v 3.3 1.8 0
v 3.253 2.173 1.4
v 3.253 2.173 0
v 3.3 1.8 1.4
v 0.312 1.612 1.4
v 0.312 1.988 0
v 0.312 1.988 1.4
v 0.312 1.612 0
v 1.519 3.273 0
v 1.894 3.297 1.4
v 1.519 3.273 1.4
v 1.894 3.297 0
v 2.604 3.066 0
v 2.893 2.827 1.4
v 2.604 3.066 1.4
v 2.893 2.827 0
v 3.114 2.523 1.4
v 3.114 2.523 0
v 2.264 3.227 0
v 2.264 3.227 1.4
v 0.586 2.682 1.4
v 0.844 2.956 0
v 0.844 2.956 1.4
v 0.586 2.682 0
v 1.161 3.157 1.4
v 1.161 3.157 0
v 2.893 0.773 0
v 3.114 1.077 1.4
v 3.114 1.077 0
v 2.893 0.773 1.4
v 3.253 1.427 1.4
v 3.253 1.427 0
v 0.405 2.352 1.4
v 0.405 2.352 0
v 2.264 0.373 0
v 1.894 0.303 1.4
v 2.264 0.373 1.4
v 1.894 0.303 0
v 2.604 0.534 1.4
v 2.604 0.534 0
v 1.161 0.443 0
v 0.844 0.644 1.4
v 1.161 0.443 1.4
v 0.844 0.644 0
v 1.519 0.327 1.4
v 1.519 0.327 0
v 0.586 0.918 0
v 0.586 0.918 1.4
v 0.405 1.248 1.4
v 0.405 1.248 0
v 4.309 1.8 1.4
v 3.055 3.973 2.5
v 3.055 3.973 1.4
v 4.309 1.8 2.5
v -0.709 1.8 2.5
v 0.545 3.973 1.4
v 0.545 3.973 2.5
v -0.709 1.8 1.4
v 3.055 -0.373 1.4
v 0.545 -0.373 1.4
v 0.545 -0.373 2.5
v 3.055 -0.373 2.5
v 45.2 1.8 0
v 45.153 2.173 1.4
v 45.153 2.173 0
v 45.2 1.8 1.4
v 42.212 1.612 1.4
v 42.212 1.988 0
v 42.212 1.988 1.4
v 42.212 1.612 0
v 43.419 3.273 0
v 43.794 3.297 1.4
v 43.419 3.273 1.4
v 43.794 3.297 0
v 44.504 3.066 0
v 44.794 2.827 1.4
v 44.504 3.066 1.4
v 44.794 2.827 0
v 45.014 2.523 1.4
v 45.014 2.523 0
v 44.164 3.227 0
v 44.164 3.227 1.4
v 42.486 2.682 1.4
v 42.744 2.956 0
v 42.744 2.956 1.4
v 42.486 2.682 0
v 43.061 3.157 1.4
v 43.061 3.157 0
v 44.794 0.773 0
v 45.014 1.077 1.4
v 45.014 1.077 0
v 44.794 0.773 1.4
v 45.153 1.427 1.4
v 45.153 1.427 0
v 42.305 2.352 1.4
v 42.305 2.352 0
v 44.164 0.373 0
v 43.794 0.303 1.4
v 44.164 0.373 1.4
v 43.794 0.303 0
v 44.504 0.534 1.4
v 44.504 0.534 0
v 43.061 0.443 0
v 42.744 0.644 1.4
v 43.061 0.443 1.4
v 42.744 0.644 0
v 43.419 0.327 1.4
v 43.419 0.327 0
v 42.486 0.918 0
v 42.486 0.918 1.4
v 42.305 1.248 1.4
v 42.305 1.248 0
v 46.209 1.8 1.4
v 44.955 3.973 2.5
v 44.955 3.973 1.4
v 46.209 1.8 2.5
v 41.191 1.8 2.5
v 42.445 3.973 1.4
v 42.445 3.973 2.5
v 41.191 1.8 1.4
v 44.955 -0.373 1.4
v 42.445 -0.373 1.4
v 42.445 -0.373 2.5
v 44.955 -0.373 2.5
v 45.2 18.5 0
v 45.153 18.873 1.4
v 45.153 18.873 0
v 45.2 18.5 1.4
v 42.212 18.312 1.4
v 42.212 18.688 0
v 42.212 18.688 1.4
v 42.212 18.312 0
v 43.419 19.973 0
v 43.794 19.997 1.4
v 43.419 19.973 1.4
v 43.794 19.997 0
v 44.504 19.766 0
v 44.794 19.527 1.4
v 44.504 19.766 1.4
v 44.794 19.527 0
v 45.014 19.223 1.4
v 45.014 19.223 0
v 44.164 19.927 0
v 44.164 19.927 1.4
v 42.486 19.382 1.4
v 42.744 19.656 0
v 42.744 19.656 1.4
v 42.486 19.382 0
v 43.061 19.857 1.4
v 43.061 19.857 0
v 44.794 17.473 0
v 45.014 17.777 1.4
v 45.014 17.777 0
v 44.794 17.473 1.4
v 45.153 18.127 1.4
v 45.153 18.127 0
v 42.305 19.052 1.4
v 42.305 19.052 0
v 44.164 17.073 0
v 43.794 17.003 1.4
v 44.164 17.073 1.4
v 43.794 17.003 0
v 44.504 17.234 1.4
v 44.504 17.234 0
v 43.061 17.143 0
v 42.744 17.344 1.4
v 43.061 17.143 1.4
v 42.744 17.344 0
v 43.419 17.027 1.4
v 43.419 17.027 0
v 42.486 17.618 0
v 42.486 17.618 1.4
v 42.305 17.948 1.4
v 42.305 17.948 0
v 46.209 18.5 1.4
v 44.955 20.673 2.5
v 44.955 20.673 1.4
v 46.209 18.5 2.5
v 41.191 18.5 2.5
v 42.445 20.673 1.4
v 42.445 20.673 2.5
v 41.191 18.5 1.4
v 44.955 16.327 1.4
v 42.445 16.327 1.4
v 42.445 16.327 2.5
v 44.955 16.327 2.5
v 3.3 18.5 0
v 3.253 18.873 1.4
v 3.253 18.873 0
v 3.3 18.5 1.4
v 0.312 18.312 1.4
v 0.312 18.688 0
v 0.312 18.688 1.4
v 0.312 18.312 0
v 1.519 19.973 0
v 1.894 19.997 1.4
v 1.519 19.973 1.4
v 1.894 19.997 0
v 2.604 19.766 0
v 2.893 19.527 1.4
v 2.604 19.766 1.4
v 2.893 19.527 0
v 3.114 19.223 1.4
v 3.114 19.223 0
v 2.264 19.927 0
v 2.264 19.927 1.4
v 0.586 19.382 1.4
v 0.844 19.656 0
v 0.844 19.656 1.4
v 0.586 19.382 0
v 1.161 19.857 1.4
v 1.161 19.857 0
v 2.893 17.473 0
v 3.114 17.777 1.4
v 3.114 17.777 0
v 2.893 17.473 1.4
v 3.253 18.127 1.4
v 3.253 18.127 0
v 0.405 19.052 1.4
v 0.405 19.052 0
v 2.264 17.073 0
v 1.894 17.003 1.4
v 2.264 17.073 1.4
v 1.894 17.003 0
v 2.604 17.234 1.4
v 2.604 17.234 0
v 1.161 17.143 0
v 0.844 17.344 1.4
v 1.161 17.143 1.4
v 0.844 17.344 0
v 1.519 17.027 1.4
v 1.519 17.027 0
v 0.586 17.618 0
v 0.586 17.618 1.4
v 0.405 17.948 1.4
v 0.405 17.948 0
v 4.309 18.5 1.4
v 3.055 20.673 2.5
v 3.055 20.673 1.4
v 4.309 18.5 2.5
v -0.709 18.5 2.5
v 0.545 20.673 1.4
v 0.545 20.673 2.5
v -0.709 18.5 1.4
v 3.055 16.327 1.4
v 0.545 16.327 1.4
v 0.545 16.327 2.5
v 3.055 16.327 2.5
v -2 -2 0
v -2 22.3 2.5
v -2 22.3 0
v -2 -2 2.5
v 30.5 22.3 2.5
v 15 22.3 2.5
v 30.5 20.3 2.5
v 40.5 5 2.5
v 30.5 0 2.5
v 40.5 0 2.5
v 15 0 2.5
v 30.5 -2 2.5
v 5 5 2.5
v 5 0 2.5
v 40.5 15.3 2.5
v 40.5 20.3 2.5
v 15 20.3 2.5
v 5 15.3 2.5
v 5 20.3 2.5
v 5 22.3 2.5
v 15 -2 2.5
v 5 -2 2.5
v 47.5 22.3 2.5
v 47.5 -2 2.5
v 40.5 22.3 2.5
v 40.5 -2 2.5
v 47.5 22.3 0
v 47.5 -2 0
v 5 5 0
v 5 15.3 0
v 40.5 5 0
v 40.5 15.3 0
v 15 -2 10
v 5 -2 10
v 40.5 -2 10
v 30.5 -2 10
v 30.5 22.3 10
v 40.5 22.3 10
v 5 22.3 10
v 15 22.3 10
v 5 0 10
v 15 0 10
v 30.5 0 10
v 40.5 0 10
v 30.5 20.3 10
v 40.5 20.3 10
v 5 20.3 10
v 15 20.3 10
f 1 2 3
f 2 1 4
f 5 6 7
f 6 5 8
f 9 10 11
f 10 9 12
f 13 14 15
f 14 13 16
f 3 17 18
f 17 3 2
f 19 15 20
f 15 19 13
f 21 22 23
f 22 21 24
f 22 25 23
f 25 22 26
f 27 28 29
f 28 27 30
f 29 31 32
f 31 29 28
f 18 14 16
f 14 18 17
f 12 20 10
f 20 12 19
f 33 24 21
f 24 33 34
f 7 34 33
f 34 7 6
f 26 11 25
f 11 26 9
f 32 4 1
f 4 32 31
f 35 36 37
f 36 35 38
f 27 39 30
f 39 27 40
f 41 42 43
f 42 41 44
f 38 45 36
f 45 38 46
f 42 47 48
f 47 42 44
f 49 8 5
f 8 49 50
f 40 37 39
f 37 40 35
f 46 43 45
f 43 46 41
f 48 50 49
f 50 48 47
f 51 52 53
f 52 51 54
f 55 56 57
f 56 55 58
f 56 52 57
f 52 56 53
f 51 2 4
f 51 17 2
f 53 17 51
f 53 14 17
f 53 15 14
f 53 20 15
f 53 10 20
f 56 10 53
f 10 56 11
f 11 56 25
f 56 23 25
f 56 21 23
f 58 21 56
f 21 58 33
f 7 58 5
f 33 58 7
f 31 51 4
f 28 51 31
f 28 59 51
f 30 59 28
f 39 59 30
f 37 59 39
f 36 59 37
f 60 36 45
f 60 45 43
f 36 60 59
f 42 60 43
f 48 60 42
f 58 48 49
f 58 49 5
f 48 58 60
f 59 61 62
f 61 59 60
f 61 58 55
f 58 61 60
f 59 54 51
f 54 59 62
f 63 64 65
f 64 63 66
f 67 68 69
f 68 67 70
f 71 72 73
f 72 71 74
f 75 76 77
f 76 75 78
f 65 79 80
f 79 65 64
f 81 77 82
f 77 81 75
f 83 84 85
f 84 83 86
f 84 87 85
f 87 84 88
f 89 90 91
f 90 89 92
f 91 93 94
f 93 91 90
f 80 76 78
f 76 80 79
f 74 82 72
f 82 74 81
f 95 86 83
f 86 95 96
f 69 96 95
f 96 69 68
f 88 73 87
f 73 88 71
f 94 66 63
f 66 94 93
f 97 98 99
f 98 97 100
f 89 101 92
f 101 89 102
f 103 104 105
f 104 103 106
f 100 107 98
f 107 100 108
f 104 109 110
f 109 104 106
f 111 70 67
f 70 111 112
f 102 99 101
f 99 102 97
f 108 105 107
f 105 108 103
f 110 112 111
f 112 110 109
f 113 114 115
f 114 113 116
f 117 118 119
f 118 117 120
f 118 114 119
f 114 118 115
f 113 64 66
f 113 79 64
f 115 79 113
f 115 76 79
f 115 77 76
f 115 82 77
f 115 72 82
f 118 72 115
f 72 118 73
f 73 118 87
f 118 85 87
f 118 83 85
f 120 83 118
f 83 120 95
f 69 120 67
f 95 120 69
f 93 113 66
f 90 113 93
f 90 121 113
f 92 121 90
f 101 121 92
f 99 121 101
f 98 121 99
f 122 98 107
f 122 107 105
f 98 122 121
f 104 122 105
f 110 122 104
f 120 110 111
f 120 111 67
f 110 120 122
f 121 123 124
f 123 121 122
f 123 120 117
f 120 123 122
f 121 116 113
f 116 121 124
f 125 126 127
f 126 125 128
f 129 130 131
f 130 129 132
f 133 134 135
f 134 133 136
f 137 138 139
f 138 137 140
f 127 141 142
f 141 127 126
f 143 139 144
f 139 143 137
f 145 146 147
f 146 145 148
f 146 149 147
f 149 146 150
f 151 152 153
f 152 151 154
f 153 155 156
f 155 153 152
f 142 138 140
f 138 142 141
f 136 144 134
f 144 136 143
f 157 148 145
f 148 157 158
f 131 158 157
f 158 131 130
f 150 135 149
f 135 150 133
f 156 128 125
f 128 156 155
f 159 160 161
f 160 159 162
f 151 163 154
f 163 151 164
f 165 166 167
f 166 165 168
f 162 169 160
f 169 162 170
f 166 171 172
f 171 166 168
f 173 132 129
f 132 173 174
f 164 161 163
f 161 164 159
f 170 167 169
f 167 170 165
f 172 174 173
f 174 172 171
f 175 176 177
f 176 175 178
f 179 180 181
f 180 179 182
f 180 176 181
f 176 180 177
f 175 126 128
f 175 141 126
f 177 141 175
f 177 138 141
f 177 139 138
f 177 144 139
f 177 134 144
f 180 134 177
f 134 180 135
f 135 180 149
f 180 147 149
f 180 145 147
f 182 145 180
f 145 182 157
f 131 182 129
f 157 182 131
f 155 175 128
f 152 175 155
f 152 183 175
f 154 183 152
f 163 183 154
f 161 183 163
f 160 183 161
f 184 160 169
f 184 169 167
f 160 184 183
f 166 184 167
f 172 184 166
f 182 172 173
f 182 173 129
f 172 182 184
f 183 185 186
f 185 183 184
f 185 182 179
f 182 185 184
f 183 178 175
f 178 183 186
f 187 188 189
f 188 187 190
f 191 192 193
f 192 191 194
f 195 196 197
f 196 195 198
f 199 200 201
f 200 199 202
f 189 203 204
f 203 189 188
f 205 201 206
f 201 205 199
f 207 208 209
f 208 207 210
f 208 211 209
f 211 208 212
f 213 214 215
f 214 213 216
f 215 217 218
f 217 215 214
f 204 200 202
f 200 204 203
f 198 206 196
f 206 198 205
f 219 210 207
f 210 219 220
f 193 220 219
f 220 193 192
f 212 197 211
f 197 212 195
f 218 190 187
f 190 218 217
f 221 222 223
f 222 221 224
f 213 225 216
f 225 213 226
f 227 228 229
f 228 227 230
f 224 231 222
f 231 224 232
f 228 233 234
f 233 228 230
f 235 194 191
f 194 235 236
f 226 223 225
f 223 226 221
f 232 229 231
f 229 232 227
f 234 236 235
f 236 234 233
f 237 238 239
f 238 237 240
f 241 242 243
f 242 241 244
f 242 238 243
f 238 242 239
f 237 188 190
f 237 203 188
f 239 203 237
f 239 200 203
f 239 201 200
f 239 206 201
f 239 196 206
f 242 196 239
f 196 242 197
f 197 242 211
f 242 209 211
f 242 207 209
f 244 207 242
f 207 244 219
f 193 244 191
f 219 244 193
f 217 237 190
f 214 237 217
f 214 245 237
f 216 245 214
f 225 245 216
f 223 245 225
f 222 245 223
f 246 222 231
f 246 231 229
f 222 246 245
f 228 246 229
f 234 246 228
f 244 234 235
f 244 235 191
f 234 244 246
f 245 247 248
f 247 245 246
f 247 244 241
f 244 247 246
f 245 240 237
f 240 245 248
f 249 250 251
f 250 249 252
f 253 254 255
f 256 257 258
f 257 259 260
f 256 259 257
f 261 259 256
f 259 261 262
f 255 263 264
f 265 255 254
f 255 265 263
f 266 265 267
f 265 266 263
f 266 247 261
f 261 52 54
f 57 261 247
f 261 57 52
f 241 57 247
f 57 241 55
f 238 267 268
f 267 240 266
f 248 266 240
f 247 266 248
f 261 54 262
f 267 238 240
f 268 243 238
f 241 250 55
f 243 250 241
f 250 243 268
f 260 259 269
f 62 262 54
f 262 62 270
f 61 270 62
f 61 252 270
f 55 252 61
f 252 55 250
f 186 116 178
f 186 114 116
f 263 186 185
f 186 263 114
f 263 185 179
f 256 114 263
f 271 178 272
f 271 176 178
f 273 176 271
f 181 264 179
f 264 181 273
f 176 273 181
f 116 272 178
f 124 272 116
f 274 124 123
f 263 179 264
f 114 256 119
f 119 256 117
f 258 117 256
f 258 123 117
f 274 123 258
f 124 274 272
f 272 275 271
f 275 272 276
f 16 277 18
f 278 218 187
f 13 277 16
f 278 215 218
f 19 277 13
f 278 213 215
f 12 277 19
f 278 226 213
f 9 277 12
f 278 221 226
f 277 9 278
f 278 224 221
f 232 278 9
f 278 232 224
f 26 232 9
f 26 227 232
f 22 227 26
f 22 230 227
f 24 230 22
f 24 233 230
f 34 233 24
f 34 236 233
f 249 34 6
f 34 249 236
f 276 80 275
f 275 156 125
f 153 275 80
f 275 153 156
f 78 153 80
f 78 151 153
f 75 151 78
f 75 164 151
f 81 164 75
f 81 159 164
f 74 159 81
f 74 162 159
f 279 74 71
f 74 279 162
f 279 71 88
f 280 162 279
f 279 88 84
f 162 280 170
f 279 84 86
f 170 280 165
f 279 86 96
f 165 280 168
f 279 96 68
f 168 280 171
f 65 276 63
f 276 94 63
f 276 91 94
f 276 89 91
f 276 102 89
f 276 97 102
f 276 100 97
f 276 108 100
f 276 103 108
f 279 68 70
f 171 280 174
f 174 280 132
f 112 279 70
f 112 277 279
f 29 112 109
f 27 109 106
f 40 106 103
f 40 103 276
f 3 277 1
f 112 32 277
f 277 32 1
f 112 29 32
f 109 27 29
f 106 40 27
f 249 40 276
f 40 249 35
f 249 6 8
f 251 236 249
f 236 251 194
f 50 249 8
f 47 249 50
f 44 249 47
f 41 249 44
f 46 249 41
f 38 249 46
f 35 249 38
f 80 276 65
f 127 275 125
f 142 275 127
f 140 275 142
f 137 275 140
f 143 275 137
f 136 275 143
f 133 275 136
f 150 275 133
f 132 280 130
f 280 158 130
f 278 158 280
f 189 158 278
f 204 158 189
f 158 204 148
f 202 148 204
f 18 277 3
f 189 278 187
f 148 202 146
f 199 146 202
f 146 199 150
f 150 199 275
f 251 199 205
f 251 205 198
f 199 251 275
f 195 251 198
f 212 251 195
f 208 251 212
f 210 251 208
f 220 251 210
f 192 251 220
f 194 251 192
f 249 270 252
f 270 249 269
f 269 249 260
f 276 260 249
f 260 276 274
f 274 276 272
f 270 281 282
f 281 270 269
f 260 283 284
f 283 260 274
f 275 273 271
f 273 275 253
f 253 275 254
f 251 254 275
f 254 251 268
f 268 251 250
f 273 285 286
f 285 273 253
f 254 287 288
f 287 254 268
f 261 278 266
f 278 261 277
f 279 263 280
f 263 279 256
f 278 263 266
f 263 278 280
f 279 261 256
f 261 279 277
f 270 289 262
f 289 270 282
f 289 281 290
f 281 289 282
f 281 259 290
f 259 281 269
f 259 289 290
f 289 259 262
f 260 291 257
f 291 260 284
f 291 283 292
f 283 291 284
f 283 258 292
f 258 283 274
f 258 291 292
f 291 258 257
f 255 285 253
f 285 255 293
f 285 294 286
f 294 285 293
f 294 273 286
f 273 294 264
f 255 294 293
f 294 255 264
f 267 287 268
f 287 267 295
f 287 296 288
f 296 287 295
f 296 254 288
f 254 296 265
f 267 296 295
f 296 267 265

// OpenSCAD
//HC-SR04 mount

ex=0.1;         //utility
hole_dia=3;   //hole diameter
hole_offset=1.8;  //hole center offset from the board edge
base_height=2.5;  //mount base height
base_length=45.5;
base_width=20.3;
holder_width=2;
holder_length=10;
holder_height=10;
holder_offset=5;
inner_offset=5;

main();

module main(){
    difference(){
        translate([-holder_width, -holder_width, 0]) 
            cube([base_length+2*holder_width, base_width+2*holder_width, base_height]);
        holes();
        translate([inner_offset, inner_offset, -ex]) cube([base_length-2*inner_offset, base_width-2*inner_offset, base_height+2*ex]);
    }
    holders();
}

module holes(){
    translate([hole_offset, hole_offset, -ex]) hole();
    translate([base_length-hole_offset, hole_offset, -ex]) hole();
    translate([base_length-hole_offset, base_width-hole_offset, -ex]) hole();
    translate([hole_offset, base_width-hole_offset, -ex]) hole();
}

module hole(){
    union(){
        cylinder(d=hole_dia, h=base_height+2*ex, $fn=25);
        M2nut();
    }
}

module M2nut(nutHeight=1){
    translate([0,0, base_height-nutHeight]) 
        cylinder(r = 4 / 2 / cos(180 / 6) + 2*ex, h=nutHeight+2*ex, $fn=6);
}

module holders(){
    translate([holder_offset, -holder_width, 0]) holder();
    translate([base_length-holder_length-holder_offset, -holder_width, 0]) holder();
    translate([base_length-holder_length-holder_offset, base_width, 0]) holder();
    translate([holder_offset, base_width, 0]) holder();
}

module holder(){
    cube([holder_length, holder_width, holder_height]);
}
